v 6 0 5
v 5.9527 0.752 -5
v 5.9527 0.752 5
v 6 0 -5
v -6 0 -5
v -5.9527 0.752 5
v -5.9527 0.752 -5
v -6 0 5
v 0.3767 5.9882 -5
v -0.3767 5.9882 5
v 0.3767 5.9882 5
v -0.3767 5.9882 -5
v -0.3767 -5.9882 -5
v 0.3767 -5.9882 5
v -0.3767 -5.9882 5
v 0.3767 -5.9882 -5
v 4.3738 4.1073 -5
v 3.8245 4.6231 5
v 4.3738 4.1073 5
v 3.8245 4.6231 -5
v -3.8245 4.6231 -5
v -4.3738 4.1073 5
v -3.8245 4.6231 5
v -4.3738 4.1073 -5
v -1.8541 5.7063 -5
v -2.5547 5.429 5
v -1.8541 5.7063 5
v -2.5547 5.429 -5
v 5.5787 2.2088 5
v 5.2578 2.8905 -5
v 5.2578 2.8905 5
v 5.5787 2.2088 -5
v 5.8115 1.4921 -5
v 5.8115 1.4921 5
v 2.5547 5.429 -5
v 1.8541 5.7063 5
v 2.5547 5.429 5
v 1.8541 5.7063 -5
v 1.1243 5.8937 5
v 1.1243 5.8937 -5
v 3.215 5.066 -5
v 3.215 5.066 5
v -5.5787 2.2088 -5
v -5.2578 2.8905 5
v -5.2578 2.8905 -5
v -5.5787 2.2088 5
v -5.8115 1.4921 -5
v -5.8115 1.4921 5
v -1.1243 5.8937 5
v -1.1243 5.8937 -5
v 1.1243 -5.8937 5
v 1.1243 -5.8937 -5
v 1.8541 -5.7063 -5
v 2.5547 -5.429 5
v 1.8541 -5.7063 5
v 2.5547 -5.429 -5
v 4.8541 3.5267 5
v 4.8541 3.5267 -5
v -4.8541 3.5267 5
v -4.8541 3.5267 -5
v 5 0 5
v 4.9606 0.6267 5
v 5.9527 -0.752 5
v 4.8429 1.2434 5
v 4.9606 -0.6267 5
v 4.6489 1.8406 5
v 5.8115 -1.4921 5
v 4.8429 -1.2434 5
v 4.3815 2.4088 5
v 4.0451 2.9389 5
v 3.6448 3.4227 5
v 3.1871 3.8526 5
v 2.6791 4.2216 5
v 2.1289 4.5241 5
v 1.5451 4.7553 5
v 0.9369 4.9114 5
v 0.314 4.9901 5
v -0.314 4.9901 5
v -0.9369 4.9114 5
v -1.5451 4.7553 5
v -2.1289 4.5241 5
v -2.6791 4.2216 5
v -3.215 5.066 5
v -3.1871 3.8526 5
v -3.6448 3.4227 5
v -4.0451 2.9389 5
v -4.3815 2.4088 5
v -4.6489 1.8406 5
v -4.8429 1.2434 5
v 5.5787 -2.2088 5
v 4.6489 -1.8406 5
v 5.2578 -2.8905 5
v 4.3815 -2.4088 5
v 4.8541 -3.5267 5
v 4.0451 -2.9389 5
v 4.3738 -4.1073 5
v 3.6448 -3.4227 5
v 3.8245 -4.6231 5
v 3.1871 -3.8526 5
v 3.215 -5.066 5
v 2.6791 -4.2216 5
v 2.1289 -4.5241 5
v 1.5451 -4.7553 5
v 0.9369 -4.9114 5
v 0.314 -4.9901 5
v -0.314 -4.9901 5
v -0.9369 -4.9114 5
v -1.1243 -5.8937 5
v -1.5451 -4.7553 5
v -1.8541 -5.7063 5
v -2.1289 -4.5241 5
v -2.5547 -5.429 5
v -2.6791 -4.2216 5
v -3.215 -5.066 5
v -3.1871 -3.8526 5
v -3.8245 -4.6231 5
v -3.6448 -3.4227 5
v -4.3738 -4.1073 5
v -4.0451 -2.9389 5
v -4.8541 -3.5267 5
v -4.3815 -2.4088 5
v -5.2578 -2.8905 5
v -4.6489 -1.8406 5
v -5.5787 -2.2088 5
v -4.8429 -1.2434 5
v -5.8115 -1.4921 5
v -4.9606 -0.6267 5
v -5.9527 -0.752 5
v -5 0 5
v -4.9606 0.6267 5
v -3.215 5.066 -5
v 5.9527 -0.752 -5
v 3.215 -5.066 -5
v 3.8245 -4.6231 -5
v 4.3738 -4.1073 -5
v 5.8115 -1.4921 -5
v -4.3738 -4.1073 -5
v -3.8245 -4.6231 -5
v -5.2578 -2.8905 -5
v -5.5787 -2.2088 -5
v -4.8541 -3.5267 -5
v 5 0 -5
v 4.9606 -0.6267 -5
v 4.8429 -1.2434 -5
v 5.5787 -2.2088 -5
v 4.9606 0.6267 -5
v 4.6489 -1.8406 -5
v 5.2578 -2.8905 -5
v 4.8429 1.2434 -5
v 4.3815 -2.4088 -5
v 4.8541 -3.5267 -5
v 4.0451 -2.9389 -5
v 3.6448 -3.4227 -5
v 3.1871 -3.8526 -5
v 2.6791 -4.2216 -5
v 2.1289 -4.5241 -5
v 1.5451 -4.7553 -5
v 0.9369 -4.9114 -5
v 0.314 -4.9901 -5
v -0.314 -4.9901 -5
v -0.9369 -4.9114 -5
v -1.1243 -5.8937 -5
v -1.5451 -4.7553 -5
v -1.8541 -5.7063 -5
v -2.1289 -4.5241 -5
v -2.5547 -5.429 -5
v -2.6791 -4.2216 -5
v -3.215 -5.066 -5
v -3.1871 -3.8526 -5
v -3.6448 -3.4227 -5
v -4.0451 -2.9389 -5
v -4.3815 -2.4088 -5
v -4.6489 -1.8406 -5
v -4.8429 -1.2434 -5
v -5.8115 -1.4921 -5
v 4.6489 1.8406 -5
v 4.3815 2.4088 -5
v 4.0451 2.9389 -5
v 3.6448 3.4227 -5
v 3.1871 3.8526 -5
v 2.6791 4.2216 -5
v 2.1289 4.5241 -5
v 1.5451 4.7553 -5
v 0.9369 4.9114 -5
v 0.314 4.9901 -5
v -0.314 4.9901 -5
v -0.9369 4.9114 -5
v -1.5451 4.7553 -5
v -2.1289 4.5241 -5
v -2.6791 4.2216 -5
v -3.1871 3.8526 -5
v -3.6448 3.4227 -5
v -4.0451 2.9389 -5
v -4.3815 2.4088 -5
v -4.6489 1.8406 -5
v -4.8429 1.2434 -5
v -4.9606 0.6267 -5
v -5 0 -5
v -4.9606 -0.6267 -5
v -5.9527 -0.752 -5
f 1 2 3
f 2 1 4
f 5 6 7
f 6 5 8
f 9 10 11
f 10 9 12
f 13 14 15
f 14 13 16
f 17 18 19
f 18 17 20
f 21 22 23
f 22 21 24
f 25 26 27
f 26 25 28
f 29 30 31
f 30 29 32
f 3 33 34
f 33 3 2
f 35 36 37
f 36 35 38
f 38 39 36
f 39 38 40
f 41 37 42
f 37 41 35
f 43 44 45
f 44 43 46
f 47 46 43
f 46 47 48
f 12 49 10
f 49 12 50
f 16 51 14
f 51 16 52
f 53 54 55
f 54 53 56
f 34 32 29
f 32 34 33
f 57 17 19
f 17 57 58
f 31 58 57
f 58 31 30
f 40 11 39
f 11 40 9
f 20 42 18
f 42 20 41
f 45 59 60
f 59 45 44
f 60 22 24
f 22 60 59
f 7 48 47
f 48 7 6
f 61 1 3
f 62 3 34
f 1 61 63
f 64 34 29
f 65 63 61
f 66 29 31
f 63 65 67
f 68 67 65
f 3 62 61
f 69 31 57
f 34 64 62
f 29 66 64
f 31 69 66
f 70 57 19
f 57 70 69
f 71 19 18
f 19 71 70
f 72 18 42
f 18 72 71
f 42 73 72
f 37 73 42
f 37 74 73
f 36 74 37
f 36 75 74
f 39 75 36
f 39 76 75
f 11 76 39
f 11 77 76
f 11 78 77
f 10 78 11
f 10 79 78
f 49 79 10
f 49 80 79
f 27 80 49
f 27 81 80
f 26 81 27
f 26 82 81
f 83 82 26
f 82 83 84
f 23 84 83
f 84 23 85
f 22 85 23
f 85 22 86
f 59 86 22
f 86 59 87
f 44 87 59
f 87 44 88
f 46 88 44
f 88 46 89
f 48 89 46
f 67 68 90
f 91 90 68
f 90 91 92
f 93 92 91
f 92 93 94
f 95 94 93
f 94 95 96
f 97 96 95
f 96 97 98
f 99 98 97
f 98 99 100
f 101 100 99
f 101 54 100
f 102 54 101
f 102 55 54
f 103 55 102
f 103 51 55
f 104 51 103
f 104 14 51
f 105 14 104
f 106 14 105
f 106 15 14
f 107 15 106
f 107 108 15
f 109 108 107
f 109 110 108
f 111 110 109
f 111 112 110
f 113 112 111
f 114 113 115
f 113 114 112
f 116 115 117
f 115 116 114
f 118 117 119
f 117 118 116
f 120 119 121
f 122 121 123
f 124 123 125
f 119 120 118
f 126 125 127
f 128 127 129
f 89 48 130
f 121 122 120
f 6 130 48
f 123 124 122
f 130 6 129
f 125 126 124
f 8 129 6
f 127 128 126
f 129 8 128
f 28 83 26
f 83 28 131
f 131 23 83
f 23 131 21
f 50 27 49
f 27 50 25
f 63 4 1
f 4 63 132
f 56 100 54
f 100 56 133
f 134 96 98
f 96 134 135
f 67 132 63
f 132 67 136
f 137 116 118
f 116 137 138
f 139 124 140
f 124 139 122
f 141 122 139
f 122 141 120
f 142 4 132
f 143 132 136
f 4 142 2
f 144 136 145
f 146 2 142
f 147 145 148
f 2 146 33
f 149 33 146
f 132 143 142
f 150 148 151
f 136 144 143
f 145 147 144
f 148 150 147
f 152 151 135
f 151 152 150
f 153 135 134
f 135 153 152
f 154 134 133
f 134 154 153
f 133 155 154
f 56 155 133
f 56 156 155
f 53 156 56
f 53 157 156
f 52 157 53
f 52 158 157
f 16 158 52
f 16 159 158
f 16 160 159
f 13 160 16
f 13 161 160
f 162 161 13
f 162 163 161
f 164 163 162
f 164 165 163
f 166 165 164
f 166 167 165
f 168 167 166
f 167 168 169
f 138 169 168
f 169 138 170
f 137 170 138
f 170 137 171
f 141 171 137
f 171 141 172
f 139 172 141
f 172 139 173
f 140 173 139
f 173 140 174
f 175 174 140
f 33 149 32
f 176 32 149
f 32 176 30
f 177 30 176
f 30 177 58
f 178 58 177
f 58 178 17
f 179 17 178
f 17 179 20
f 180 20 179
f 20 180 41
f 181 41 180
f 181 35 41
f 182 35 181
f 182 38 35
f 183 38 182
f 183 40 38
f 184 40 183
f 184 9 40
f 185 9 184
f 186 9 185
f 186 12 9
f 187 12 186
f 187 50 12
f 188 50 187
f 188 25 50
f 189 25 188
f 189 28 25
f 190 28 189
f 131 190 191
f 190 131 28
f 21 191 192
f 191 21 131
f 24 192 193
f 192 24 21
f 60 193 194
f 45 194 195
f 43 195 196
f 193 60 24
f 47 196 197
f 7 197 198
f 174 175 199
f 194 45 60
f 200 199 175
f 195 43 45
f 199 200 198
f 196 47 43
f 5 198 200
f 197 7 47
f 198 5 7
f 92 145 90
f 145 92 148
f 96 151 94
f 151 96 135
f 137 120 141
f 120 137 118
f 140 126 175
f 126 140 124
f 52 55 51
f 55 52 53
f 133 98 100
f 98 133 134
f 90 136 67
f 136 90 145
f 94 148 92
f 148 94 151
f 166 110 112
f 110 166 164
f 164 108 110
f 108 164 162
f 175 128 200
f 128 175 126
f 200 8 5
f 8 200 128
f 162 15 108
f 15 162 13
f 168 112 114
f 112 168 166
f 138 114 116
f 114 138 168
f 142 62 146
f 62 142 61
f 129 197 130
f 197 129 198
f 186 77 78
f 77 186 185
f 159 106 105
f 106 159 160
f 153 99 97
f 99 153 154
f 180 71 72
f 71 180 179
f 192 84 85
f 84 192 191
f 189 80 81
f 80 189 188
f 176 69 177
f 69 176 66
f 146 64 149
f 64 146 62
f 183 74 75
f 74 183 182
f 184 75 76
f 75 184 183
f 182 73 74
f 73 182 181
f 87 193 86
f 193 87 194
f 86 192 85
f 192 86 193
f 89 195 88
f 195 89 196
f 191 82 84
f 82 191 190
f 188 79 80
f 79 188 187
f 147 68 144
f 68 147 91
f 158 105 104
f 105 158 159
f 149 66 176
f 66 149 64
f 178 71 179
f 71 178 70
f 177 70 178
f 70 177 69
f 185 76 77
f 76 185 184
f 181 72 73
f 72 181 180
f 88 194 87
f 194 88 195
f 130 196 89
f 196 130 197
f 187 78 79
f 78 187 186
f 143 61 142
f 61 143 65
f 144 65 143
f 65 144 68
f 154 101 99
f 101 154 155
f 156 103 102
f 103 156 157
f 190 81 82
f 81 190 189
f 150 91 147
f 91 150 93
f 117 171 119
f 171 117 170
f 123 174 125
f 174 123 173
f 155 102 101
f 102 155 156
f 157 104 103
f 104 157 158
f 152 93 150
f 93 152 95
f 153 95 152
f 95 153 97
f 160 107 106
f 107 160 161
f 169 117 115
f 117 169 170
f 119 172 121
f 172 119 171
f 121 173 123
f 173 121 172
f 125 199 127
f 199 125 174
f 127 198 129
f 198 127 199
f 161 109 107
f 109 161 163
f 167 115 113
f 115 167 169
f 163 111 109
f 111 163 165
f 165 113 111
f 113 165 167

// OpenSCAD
$fn = 50;


difference() {
	union() {
		translate(v = [0, 0, -5.0000000000]) {
			cylinder(h = 10, r = 6.0000000000);
		}
	}
	union() {
		translate(v = [0, 0, -100.0000000000]) {
			cylinder(h = 200, r = 5.0000000000);
		}
	}
}
